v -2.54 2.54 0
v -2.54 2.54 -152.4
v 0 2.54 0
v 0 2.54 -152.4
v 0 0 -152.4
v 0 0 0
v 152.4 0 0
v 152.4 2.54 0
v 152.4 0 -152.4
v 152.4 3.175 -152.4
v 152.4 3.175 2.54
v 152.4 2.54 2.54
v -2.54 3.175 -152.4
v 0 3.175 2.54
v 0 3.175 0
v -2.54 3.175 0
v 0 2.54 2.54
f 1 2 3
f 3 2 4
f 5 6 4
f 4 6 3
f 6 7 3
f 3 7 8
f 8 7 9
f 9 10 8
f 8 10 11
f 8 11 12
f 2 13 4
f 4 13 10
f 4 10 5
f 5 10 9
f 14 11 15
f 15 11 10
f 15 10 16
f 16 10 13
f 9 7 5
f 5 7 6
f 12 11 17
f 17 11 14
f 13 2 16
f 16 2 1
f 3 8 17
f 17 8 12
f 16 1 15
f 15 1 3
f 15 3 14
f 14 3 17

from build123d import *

# Parameters (mm, degrees)
SKETCH1_W           = 152.4
SKETCH1_H           = 152.4
BOSS_EXTRUDE1_DEPTH = 3.175
BOSS_EXTRUDE2_DEPTH = 0.635
SKETCH3_W           = 2.54
SKETCH3_H           = 2.54
CUT_EXTRUDE1_DEPTH  = 4.175


with BuildPart() as part:
    # Sketch1 → Boss-Extrude1 (new body)
    with BuildSketch(Plane(origin=(0, 0, 0), x_dir=(1, 0, 0), z_dir=(0, 1, 0))):
        with Locations((76.2, 76.2)):
            Rectangle(SKETCH1_W, SKETCH1_H)
    extrude(amount=BOSS_EXTRUDE1_DEPTH)

    # Sketch2 → Boss-Extrude2 (add)
    with BuildSketch(Plane(origin=(0, 3.175, 0), x_dir=(1, 0, 0), z_dir=(0, 1, 0))):
        Polygon((0, 152.4), (-2.54, 152.4), (-2.54, -2.54), (152.4, -2.54), (152.4, 0), (0, 0), align=None)
    extrude(amount=-BOSS_EXTRUDE2_DEPTH)

    # Sketch3 → Cut-Extrude1 (cut, through all)
    with BuildSketch(Plane(origin=(0, 3.175, 0), x_dir=(1, 0, 0), z_dir=(0, 1, 0))):
        with Locations((-1.27, -1.27)):
            Rectangle(SKETCH3_W, SKETCH3_H)
    extrude(amount=-CUT_EXTRUDE1_DEPTH, mode=Mode.SUBTRACT)


solid = part.part
